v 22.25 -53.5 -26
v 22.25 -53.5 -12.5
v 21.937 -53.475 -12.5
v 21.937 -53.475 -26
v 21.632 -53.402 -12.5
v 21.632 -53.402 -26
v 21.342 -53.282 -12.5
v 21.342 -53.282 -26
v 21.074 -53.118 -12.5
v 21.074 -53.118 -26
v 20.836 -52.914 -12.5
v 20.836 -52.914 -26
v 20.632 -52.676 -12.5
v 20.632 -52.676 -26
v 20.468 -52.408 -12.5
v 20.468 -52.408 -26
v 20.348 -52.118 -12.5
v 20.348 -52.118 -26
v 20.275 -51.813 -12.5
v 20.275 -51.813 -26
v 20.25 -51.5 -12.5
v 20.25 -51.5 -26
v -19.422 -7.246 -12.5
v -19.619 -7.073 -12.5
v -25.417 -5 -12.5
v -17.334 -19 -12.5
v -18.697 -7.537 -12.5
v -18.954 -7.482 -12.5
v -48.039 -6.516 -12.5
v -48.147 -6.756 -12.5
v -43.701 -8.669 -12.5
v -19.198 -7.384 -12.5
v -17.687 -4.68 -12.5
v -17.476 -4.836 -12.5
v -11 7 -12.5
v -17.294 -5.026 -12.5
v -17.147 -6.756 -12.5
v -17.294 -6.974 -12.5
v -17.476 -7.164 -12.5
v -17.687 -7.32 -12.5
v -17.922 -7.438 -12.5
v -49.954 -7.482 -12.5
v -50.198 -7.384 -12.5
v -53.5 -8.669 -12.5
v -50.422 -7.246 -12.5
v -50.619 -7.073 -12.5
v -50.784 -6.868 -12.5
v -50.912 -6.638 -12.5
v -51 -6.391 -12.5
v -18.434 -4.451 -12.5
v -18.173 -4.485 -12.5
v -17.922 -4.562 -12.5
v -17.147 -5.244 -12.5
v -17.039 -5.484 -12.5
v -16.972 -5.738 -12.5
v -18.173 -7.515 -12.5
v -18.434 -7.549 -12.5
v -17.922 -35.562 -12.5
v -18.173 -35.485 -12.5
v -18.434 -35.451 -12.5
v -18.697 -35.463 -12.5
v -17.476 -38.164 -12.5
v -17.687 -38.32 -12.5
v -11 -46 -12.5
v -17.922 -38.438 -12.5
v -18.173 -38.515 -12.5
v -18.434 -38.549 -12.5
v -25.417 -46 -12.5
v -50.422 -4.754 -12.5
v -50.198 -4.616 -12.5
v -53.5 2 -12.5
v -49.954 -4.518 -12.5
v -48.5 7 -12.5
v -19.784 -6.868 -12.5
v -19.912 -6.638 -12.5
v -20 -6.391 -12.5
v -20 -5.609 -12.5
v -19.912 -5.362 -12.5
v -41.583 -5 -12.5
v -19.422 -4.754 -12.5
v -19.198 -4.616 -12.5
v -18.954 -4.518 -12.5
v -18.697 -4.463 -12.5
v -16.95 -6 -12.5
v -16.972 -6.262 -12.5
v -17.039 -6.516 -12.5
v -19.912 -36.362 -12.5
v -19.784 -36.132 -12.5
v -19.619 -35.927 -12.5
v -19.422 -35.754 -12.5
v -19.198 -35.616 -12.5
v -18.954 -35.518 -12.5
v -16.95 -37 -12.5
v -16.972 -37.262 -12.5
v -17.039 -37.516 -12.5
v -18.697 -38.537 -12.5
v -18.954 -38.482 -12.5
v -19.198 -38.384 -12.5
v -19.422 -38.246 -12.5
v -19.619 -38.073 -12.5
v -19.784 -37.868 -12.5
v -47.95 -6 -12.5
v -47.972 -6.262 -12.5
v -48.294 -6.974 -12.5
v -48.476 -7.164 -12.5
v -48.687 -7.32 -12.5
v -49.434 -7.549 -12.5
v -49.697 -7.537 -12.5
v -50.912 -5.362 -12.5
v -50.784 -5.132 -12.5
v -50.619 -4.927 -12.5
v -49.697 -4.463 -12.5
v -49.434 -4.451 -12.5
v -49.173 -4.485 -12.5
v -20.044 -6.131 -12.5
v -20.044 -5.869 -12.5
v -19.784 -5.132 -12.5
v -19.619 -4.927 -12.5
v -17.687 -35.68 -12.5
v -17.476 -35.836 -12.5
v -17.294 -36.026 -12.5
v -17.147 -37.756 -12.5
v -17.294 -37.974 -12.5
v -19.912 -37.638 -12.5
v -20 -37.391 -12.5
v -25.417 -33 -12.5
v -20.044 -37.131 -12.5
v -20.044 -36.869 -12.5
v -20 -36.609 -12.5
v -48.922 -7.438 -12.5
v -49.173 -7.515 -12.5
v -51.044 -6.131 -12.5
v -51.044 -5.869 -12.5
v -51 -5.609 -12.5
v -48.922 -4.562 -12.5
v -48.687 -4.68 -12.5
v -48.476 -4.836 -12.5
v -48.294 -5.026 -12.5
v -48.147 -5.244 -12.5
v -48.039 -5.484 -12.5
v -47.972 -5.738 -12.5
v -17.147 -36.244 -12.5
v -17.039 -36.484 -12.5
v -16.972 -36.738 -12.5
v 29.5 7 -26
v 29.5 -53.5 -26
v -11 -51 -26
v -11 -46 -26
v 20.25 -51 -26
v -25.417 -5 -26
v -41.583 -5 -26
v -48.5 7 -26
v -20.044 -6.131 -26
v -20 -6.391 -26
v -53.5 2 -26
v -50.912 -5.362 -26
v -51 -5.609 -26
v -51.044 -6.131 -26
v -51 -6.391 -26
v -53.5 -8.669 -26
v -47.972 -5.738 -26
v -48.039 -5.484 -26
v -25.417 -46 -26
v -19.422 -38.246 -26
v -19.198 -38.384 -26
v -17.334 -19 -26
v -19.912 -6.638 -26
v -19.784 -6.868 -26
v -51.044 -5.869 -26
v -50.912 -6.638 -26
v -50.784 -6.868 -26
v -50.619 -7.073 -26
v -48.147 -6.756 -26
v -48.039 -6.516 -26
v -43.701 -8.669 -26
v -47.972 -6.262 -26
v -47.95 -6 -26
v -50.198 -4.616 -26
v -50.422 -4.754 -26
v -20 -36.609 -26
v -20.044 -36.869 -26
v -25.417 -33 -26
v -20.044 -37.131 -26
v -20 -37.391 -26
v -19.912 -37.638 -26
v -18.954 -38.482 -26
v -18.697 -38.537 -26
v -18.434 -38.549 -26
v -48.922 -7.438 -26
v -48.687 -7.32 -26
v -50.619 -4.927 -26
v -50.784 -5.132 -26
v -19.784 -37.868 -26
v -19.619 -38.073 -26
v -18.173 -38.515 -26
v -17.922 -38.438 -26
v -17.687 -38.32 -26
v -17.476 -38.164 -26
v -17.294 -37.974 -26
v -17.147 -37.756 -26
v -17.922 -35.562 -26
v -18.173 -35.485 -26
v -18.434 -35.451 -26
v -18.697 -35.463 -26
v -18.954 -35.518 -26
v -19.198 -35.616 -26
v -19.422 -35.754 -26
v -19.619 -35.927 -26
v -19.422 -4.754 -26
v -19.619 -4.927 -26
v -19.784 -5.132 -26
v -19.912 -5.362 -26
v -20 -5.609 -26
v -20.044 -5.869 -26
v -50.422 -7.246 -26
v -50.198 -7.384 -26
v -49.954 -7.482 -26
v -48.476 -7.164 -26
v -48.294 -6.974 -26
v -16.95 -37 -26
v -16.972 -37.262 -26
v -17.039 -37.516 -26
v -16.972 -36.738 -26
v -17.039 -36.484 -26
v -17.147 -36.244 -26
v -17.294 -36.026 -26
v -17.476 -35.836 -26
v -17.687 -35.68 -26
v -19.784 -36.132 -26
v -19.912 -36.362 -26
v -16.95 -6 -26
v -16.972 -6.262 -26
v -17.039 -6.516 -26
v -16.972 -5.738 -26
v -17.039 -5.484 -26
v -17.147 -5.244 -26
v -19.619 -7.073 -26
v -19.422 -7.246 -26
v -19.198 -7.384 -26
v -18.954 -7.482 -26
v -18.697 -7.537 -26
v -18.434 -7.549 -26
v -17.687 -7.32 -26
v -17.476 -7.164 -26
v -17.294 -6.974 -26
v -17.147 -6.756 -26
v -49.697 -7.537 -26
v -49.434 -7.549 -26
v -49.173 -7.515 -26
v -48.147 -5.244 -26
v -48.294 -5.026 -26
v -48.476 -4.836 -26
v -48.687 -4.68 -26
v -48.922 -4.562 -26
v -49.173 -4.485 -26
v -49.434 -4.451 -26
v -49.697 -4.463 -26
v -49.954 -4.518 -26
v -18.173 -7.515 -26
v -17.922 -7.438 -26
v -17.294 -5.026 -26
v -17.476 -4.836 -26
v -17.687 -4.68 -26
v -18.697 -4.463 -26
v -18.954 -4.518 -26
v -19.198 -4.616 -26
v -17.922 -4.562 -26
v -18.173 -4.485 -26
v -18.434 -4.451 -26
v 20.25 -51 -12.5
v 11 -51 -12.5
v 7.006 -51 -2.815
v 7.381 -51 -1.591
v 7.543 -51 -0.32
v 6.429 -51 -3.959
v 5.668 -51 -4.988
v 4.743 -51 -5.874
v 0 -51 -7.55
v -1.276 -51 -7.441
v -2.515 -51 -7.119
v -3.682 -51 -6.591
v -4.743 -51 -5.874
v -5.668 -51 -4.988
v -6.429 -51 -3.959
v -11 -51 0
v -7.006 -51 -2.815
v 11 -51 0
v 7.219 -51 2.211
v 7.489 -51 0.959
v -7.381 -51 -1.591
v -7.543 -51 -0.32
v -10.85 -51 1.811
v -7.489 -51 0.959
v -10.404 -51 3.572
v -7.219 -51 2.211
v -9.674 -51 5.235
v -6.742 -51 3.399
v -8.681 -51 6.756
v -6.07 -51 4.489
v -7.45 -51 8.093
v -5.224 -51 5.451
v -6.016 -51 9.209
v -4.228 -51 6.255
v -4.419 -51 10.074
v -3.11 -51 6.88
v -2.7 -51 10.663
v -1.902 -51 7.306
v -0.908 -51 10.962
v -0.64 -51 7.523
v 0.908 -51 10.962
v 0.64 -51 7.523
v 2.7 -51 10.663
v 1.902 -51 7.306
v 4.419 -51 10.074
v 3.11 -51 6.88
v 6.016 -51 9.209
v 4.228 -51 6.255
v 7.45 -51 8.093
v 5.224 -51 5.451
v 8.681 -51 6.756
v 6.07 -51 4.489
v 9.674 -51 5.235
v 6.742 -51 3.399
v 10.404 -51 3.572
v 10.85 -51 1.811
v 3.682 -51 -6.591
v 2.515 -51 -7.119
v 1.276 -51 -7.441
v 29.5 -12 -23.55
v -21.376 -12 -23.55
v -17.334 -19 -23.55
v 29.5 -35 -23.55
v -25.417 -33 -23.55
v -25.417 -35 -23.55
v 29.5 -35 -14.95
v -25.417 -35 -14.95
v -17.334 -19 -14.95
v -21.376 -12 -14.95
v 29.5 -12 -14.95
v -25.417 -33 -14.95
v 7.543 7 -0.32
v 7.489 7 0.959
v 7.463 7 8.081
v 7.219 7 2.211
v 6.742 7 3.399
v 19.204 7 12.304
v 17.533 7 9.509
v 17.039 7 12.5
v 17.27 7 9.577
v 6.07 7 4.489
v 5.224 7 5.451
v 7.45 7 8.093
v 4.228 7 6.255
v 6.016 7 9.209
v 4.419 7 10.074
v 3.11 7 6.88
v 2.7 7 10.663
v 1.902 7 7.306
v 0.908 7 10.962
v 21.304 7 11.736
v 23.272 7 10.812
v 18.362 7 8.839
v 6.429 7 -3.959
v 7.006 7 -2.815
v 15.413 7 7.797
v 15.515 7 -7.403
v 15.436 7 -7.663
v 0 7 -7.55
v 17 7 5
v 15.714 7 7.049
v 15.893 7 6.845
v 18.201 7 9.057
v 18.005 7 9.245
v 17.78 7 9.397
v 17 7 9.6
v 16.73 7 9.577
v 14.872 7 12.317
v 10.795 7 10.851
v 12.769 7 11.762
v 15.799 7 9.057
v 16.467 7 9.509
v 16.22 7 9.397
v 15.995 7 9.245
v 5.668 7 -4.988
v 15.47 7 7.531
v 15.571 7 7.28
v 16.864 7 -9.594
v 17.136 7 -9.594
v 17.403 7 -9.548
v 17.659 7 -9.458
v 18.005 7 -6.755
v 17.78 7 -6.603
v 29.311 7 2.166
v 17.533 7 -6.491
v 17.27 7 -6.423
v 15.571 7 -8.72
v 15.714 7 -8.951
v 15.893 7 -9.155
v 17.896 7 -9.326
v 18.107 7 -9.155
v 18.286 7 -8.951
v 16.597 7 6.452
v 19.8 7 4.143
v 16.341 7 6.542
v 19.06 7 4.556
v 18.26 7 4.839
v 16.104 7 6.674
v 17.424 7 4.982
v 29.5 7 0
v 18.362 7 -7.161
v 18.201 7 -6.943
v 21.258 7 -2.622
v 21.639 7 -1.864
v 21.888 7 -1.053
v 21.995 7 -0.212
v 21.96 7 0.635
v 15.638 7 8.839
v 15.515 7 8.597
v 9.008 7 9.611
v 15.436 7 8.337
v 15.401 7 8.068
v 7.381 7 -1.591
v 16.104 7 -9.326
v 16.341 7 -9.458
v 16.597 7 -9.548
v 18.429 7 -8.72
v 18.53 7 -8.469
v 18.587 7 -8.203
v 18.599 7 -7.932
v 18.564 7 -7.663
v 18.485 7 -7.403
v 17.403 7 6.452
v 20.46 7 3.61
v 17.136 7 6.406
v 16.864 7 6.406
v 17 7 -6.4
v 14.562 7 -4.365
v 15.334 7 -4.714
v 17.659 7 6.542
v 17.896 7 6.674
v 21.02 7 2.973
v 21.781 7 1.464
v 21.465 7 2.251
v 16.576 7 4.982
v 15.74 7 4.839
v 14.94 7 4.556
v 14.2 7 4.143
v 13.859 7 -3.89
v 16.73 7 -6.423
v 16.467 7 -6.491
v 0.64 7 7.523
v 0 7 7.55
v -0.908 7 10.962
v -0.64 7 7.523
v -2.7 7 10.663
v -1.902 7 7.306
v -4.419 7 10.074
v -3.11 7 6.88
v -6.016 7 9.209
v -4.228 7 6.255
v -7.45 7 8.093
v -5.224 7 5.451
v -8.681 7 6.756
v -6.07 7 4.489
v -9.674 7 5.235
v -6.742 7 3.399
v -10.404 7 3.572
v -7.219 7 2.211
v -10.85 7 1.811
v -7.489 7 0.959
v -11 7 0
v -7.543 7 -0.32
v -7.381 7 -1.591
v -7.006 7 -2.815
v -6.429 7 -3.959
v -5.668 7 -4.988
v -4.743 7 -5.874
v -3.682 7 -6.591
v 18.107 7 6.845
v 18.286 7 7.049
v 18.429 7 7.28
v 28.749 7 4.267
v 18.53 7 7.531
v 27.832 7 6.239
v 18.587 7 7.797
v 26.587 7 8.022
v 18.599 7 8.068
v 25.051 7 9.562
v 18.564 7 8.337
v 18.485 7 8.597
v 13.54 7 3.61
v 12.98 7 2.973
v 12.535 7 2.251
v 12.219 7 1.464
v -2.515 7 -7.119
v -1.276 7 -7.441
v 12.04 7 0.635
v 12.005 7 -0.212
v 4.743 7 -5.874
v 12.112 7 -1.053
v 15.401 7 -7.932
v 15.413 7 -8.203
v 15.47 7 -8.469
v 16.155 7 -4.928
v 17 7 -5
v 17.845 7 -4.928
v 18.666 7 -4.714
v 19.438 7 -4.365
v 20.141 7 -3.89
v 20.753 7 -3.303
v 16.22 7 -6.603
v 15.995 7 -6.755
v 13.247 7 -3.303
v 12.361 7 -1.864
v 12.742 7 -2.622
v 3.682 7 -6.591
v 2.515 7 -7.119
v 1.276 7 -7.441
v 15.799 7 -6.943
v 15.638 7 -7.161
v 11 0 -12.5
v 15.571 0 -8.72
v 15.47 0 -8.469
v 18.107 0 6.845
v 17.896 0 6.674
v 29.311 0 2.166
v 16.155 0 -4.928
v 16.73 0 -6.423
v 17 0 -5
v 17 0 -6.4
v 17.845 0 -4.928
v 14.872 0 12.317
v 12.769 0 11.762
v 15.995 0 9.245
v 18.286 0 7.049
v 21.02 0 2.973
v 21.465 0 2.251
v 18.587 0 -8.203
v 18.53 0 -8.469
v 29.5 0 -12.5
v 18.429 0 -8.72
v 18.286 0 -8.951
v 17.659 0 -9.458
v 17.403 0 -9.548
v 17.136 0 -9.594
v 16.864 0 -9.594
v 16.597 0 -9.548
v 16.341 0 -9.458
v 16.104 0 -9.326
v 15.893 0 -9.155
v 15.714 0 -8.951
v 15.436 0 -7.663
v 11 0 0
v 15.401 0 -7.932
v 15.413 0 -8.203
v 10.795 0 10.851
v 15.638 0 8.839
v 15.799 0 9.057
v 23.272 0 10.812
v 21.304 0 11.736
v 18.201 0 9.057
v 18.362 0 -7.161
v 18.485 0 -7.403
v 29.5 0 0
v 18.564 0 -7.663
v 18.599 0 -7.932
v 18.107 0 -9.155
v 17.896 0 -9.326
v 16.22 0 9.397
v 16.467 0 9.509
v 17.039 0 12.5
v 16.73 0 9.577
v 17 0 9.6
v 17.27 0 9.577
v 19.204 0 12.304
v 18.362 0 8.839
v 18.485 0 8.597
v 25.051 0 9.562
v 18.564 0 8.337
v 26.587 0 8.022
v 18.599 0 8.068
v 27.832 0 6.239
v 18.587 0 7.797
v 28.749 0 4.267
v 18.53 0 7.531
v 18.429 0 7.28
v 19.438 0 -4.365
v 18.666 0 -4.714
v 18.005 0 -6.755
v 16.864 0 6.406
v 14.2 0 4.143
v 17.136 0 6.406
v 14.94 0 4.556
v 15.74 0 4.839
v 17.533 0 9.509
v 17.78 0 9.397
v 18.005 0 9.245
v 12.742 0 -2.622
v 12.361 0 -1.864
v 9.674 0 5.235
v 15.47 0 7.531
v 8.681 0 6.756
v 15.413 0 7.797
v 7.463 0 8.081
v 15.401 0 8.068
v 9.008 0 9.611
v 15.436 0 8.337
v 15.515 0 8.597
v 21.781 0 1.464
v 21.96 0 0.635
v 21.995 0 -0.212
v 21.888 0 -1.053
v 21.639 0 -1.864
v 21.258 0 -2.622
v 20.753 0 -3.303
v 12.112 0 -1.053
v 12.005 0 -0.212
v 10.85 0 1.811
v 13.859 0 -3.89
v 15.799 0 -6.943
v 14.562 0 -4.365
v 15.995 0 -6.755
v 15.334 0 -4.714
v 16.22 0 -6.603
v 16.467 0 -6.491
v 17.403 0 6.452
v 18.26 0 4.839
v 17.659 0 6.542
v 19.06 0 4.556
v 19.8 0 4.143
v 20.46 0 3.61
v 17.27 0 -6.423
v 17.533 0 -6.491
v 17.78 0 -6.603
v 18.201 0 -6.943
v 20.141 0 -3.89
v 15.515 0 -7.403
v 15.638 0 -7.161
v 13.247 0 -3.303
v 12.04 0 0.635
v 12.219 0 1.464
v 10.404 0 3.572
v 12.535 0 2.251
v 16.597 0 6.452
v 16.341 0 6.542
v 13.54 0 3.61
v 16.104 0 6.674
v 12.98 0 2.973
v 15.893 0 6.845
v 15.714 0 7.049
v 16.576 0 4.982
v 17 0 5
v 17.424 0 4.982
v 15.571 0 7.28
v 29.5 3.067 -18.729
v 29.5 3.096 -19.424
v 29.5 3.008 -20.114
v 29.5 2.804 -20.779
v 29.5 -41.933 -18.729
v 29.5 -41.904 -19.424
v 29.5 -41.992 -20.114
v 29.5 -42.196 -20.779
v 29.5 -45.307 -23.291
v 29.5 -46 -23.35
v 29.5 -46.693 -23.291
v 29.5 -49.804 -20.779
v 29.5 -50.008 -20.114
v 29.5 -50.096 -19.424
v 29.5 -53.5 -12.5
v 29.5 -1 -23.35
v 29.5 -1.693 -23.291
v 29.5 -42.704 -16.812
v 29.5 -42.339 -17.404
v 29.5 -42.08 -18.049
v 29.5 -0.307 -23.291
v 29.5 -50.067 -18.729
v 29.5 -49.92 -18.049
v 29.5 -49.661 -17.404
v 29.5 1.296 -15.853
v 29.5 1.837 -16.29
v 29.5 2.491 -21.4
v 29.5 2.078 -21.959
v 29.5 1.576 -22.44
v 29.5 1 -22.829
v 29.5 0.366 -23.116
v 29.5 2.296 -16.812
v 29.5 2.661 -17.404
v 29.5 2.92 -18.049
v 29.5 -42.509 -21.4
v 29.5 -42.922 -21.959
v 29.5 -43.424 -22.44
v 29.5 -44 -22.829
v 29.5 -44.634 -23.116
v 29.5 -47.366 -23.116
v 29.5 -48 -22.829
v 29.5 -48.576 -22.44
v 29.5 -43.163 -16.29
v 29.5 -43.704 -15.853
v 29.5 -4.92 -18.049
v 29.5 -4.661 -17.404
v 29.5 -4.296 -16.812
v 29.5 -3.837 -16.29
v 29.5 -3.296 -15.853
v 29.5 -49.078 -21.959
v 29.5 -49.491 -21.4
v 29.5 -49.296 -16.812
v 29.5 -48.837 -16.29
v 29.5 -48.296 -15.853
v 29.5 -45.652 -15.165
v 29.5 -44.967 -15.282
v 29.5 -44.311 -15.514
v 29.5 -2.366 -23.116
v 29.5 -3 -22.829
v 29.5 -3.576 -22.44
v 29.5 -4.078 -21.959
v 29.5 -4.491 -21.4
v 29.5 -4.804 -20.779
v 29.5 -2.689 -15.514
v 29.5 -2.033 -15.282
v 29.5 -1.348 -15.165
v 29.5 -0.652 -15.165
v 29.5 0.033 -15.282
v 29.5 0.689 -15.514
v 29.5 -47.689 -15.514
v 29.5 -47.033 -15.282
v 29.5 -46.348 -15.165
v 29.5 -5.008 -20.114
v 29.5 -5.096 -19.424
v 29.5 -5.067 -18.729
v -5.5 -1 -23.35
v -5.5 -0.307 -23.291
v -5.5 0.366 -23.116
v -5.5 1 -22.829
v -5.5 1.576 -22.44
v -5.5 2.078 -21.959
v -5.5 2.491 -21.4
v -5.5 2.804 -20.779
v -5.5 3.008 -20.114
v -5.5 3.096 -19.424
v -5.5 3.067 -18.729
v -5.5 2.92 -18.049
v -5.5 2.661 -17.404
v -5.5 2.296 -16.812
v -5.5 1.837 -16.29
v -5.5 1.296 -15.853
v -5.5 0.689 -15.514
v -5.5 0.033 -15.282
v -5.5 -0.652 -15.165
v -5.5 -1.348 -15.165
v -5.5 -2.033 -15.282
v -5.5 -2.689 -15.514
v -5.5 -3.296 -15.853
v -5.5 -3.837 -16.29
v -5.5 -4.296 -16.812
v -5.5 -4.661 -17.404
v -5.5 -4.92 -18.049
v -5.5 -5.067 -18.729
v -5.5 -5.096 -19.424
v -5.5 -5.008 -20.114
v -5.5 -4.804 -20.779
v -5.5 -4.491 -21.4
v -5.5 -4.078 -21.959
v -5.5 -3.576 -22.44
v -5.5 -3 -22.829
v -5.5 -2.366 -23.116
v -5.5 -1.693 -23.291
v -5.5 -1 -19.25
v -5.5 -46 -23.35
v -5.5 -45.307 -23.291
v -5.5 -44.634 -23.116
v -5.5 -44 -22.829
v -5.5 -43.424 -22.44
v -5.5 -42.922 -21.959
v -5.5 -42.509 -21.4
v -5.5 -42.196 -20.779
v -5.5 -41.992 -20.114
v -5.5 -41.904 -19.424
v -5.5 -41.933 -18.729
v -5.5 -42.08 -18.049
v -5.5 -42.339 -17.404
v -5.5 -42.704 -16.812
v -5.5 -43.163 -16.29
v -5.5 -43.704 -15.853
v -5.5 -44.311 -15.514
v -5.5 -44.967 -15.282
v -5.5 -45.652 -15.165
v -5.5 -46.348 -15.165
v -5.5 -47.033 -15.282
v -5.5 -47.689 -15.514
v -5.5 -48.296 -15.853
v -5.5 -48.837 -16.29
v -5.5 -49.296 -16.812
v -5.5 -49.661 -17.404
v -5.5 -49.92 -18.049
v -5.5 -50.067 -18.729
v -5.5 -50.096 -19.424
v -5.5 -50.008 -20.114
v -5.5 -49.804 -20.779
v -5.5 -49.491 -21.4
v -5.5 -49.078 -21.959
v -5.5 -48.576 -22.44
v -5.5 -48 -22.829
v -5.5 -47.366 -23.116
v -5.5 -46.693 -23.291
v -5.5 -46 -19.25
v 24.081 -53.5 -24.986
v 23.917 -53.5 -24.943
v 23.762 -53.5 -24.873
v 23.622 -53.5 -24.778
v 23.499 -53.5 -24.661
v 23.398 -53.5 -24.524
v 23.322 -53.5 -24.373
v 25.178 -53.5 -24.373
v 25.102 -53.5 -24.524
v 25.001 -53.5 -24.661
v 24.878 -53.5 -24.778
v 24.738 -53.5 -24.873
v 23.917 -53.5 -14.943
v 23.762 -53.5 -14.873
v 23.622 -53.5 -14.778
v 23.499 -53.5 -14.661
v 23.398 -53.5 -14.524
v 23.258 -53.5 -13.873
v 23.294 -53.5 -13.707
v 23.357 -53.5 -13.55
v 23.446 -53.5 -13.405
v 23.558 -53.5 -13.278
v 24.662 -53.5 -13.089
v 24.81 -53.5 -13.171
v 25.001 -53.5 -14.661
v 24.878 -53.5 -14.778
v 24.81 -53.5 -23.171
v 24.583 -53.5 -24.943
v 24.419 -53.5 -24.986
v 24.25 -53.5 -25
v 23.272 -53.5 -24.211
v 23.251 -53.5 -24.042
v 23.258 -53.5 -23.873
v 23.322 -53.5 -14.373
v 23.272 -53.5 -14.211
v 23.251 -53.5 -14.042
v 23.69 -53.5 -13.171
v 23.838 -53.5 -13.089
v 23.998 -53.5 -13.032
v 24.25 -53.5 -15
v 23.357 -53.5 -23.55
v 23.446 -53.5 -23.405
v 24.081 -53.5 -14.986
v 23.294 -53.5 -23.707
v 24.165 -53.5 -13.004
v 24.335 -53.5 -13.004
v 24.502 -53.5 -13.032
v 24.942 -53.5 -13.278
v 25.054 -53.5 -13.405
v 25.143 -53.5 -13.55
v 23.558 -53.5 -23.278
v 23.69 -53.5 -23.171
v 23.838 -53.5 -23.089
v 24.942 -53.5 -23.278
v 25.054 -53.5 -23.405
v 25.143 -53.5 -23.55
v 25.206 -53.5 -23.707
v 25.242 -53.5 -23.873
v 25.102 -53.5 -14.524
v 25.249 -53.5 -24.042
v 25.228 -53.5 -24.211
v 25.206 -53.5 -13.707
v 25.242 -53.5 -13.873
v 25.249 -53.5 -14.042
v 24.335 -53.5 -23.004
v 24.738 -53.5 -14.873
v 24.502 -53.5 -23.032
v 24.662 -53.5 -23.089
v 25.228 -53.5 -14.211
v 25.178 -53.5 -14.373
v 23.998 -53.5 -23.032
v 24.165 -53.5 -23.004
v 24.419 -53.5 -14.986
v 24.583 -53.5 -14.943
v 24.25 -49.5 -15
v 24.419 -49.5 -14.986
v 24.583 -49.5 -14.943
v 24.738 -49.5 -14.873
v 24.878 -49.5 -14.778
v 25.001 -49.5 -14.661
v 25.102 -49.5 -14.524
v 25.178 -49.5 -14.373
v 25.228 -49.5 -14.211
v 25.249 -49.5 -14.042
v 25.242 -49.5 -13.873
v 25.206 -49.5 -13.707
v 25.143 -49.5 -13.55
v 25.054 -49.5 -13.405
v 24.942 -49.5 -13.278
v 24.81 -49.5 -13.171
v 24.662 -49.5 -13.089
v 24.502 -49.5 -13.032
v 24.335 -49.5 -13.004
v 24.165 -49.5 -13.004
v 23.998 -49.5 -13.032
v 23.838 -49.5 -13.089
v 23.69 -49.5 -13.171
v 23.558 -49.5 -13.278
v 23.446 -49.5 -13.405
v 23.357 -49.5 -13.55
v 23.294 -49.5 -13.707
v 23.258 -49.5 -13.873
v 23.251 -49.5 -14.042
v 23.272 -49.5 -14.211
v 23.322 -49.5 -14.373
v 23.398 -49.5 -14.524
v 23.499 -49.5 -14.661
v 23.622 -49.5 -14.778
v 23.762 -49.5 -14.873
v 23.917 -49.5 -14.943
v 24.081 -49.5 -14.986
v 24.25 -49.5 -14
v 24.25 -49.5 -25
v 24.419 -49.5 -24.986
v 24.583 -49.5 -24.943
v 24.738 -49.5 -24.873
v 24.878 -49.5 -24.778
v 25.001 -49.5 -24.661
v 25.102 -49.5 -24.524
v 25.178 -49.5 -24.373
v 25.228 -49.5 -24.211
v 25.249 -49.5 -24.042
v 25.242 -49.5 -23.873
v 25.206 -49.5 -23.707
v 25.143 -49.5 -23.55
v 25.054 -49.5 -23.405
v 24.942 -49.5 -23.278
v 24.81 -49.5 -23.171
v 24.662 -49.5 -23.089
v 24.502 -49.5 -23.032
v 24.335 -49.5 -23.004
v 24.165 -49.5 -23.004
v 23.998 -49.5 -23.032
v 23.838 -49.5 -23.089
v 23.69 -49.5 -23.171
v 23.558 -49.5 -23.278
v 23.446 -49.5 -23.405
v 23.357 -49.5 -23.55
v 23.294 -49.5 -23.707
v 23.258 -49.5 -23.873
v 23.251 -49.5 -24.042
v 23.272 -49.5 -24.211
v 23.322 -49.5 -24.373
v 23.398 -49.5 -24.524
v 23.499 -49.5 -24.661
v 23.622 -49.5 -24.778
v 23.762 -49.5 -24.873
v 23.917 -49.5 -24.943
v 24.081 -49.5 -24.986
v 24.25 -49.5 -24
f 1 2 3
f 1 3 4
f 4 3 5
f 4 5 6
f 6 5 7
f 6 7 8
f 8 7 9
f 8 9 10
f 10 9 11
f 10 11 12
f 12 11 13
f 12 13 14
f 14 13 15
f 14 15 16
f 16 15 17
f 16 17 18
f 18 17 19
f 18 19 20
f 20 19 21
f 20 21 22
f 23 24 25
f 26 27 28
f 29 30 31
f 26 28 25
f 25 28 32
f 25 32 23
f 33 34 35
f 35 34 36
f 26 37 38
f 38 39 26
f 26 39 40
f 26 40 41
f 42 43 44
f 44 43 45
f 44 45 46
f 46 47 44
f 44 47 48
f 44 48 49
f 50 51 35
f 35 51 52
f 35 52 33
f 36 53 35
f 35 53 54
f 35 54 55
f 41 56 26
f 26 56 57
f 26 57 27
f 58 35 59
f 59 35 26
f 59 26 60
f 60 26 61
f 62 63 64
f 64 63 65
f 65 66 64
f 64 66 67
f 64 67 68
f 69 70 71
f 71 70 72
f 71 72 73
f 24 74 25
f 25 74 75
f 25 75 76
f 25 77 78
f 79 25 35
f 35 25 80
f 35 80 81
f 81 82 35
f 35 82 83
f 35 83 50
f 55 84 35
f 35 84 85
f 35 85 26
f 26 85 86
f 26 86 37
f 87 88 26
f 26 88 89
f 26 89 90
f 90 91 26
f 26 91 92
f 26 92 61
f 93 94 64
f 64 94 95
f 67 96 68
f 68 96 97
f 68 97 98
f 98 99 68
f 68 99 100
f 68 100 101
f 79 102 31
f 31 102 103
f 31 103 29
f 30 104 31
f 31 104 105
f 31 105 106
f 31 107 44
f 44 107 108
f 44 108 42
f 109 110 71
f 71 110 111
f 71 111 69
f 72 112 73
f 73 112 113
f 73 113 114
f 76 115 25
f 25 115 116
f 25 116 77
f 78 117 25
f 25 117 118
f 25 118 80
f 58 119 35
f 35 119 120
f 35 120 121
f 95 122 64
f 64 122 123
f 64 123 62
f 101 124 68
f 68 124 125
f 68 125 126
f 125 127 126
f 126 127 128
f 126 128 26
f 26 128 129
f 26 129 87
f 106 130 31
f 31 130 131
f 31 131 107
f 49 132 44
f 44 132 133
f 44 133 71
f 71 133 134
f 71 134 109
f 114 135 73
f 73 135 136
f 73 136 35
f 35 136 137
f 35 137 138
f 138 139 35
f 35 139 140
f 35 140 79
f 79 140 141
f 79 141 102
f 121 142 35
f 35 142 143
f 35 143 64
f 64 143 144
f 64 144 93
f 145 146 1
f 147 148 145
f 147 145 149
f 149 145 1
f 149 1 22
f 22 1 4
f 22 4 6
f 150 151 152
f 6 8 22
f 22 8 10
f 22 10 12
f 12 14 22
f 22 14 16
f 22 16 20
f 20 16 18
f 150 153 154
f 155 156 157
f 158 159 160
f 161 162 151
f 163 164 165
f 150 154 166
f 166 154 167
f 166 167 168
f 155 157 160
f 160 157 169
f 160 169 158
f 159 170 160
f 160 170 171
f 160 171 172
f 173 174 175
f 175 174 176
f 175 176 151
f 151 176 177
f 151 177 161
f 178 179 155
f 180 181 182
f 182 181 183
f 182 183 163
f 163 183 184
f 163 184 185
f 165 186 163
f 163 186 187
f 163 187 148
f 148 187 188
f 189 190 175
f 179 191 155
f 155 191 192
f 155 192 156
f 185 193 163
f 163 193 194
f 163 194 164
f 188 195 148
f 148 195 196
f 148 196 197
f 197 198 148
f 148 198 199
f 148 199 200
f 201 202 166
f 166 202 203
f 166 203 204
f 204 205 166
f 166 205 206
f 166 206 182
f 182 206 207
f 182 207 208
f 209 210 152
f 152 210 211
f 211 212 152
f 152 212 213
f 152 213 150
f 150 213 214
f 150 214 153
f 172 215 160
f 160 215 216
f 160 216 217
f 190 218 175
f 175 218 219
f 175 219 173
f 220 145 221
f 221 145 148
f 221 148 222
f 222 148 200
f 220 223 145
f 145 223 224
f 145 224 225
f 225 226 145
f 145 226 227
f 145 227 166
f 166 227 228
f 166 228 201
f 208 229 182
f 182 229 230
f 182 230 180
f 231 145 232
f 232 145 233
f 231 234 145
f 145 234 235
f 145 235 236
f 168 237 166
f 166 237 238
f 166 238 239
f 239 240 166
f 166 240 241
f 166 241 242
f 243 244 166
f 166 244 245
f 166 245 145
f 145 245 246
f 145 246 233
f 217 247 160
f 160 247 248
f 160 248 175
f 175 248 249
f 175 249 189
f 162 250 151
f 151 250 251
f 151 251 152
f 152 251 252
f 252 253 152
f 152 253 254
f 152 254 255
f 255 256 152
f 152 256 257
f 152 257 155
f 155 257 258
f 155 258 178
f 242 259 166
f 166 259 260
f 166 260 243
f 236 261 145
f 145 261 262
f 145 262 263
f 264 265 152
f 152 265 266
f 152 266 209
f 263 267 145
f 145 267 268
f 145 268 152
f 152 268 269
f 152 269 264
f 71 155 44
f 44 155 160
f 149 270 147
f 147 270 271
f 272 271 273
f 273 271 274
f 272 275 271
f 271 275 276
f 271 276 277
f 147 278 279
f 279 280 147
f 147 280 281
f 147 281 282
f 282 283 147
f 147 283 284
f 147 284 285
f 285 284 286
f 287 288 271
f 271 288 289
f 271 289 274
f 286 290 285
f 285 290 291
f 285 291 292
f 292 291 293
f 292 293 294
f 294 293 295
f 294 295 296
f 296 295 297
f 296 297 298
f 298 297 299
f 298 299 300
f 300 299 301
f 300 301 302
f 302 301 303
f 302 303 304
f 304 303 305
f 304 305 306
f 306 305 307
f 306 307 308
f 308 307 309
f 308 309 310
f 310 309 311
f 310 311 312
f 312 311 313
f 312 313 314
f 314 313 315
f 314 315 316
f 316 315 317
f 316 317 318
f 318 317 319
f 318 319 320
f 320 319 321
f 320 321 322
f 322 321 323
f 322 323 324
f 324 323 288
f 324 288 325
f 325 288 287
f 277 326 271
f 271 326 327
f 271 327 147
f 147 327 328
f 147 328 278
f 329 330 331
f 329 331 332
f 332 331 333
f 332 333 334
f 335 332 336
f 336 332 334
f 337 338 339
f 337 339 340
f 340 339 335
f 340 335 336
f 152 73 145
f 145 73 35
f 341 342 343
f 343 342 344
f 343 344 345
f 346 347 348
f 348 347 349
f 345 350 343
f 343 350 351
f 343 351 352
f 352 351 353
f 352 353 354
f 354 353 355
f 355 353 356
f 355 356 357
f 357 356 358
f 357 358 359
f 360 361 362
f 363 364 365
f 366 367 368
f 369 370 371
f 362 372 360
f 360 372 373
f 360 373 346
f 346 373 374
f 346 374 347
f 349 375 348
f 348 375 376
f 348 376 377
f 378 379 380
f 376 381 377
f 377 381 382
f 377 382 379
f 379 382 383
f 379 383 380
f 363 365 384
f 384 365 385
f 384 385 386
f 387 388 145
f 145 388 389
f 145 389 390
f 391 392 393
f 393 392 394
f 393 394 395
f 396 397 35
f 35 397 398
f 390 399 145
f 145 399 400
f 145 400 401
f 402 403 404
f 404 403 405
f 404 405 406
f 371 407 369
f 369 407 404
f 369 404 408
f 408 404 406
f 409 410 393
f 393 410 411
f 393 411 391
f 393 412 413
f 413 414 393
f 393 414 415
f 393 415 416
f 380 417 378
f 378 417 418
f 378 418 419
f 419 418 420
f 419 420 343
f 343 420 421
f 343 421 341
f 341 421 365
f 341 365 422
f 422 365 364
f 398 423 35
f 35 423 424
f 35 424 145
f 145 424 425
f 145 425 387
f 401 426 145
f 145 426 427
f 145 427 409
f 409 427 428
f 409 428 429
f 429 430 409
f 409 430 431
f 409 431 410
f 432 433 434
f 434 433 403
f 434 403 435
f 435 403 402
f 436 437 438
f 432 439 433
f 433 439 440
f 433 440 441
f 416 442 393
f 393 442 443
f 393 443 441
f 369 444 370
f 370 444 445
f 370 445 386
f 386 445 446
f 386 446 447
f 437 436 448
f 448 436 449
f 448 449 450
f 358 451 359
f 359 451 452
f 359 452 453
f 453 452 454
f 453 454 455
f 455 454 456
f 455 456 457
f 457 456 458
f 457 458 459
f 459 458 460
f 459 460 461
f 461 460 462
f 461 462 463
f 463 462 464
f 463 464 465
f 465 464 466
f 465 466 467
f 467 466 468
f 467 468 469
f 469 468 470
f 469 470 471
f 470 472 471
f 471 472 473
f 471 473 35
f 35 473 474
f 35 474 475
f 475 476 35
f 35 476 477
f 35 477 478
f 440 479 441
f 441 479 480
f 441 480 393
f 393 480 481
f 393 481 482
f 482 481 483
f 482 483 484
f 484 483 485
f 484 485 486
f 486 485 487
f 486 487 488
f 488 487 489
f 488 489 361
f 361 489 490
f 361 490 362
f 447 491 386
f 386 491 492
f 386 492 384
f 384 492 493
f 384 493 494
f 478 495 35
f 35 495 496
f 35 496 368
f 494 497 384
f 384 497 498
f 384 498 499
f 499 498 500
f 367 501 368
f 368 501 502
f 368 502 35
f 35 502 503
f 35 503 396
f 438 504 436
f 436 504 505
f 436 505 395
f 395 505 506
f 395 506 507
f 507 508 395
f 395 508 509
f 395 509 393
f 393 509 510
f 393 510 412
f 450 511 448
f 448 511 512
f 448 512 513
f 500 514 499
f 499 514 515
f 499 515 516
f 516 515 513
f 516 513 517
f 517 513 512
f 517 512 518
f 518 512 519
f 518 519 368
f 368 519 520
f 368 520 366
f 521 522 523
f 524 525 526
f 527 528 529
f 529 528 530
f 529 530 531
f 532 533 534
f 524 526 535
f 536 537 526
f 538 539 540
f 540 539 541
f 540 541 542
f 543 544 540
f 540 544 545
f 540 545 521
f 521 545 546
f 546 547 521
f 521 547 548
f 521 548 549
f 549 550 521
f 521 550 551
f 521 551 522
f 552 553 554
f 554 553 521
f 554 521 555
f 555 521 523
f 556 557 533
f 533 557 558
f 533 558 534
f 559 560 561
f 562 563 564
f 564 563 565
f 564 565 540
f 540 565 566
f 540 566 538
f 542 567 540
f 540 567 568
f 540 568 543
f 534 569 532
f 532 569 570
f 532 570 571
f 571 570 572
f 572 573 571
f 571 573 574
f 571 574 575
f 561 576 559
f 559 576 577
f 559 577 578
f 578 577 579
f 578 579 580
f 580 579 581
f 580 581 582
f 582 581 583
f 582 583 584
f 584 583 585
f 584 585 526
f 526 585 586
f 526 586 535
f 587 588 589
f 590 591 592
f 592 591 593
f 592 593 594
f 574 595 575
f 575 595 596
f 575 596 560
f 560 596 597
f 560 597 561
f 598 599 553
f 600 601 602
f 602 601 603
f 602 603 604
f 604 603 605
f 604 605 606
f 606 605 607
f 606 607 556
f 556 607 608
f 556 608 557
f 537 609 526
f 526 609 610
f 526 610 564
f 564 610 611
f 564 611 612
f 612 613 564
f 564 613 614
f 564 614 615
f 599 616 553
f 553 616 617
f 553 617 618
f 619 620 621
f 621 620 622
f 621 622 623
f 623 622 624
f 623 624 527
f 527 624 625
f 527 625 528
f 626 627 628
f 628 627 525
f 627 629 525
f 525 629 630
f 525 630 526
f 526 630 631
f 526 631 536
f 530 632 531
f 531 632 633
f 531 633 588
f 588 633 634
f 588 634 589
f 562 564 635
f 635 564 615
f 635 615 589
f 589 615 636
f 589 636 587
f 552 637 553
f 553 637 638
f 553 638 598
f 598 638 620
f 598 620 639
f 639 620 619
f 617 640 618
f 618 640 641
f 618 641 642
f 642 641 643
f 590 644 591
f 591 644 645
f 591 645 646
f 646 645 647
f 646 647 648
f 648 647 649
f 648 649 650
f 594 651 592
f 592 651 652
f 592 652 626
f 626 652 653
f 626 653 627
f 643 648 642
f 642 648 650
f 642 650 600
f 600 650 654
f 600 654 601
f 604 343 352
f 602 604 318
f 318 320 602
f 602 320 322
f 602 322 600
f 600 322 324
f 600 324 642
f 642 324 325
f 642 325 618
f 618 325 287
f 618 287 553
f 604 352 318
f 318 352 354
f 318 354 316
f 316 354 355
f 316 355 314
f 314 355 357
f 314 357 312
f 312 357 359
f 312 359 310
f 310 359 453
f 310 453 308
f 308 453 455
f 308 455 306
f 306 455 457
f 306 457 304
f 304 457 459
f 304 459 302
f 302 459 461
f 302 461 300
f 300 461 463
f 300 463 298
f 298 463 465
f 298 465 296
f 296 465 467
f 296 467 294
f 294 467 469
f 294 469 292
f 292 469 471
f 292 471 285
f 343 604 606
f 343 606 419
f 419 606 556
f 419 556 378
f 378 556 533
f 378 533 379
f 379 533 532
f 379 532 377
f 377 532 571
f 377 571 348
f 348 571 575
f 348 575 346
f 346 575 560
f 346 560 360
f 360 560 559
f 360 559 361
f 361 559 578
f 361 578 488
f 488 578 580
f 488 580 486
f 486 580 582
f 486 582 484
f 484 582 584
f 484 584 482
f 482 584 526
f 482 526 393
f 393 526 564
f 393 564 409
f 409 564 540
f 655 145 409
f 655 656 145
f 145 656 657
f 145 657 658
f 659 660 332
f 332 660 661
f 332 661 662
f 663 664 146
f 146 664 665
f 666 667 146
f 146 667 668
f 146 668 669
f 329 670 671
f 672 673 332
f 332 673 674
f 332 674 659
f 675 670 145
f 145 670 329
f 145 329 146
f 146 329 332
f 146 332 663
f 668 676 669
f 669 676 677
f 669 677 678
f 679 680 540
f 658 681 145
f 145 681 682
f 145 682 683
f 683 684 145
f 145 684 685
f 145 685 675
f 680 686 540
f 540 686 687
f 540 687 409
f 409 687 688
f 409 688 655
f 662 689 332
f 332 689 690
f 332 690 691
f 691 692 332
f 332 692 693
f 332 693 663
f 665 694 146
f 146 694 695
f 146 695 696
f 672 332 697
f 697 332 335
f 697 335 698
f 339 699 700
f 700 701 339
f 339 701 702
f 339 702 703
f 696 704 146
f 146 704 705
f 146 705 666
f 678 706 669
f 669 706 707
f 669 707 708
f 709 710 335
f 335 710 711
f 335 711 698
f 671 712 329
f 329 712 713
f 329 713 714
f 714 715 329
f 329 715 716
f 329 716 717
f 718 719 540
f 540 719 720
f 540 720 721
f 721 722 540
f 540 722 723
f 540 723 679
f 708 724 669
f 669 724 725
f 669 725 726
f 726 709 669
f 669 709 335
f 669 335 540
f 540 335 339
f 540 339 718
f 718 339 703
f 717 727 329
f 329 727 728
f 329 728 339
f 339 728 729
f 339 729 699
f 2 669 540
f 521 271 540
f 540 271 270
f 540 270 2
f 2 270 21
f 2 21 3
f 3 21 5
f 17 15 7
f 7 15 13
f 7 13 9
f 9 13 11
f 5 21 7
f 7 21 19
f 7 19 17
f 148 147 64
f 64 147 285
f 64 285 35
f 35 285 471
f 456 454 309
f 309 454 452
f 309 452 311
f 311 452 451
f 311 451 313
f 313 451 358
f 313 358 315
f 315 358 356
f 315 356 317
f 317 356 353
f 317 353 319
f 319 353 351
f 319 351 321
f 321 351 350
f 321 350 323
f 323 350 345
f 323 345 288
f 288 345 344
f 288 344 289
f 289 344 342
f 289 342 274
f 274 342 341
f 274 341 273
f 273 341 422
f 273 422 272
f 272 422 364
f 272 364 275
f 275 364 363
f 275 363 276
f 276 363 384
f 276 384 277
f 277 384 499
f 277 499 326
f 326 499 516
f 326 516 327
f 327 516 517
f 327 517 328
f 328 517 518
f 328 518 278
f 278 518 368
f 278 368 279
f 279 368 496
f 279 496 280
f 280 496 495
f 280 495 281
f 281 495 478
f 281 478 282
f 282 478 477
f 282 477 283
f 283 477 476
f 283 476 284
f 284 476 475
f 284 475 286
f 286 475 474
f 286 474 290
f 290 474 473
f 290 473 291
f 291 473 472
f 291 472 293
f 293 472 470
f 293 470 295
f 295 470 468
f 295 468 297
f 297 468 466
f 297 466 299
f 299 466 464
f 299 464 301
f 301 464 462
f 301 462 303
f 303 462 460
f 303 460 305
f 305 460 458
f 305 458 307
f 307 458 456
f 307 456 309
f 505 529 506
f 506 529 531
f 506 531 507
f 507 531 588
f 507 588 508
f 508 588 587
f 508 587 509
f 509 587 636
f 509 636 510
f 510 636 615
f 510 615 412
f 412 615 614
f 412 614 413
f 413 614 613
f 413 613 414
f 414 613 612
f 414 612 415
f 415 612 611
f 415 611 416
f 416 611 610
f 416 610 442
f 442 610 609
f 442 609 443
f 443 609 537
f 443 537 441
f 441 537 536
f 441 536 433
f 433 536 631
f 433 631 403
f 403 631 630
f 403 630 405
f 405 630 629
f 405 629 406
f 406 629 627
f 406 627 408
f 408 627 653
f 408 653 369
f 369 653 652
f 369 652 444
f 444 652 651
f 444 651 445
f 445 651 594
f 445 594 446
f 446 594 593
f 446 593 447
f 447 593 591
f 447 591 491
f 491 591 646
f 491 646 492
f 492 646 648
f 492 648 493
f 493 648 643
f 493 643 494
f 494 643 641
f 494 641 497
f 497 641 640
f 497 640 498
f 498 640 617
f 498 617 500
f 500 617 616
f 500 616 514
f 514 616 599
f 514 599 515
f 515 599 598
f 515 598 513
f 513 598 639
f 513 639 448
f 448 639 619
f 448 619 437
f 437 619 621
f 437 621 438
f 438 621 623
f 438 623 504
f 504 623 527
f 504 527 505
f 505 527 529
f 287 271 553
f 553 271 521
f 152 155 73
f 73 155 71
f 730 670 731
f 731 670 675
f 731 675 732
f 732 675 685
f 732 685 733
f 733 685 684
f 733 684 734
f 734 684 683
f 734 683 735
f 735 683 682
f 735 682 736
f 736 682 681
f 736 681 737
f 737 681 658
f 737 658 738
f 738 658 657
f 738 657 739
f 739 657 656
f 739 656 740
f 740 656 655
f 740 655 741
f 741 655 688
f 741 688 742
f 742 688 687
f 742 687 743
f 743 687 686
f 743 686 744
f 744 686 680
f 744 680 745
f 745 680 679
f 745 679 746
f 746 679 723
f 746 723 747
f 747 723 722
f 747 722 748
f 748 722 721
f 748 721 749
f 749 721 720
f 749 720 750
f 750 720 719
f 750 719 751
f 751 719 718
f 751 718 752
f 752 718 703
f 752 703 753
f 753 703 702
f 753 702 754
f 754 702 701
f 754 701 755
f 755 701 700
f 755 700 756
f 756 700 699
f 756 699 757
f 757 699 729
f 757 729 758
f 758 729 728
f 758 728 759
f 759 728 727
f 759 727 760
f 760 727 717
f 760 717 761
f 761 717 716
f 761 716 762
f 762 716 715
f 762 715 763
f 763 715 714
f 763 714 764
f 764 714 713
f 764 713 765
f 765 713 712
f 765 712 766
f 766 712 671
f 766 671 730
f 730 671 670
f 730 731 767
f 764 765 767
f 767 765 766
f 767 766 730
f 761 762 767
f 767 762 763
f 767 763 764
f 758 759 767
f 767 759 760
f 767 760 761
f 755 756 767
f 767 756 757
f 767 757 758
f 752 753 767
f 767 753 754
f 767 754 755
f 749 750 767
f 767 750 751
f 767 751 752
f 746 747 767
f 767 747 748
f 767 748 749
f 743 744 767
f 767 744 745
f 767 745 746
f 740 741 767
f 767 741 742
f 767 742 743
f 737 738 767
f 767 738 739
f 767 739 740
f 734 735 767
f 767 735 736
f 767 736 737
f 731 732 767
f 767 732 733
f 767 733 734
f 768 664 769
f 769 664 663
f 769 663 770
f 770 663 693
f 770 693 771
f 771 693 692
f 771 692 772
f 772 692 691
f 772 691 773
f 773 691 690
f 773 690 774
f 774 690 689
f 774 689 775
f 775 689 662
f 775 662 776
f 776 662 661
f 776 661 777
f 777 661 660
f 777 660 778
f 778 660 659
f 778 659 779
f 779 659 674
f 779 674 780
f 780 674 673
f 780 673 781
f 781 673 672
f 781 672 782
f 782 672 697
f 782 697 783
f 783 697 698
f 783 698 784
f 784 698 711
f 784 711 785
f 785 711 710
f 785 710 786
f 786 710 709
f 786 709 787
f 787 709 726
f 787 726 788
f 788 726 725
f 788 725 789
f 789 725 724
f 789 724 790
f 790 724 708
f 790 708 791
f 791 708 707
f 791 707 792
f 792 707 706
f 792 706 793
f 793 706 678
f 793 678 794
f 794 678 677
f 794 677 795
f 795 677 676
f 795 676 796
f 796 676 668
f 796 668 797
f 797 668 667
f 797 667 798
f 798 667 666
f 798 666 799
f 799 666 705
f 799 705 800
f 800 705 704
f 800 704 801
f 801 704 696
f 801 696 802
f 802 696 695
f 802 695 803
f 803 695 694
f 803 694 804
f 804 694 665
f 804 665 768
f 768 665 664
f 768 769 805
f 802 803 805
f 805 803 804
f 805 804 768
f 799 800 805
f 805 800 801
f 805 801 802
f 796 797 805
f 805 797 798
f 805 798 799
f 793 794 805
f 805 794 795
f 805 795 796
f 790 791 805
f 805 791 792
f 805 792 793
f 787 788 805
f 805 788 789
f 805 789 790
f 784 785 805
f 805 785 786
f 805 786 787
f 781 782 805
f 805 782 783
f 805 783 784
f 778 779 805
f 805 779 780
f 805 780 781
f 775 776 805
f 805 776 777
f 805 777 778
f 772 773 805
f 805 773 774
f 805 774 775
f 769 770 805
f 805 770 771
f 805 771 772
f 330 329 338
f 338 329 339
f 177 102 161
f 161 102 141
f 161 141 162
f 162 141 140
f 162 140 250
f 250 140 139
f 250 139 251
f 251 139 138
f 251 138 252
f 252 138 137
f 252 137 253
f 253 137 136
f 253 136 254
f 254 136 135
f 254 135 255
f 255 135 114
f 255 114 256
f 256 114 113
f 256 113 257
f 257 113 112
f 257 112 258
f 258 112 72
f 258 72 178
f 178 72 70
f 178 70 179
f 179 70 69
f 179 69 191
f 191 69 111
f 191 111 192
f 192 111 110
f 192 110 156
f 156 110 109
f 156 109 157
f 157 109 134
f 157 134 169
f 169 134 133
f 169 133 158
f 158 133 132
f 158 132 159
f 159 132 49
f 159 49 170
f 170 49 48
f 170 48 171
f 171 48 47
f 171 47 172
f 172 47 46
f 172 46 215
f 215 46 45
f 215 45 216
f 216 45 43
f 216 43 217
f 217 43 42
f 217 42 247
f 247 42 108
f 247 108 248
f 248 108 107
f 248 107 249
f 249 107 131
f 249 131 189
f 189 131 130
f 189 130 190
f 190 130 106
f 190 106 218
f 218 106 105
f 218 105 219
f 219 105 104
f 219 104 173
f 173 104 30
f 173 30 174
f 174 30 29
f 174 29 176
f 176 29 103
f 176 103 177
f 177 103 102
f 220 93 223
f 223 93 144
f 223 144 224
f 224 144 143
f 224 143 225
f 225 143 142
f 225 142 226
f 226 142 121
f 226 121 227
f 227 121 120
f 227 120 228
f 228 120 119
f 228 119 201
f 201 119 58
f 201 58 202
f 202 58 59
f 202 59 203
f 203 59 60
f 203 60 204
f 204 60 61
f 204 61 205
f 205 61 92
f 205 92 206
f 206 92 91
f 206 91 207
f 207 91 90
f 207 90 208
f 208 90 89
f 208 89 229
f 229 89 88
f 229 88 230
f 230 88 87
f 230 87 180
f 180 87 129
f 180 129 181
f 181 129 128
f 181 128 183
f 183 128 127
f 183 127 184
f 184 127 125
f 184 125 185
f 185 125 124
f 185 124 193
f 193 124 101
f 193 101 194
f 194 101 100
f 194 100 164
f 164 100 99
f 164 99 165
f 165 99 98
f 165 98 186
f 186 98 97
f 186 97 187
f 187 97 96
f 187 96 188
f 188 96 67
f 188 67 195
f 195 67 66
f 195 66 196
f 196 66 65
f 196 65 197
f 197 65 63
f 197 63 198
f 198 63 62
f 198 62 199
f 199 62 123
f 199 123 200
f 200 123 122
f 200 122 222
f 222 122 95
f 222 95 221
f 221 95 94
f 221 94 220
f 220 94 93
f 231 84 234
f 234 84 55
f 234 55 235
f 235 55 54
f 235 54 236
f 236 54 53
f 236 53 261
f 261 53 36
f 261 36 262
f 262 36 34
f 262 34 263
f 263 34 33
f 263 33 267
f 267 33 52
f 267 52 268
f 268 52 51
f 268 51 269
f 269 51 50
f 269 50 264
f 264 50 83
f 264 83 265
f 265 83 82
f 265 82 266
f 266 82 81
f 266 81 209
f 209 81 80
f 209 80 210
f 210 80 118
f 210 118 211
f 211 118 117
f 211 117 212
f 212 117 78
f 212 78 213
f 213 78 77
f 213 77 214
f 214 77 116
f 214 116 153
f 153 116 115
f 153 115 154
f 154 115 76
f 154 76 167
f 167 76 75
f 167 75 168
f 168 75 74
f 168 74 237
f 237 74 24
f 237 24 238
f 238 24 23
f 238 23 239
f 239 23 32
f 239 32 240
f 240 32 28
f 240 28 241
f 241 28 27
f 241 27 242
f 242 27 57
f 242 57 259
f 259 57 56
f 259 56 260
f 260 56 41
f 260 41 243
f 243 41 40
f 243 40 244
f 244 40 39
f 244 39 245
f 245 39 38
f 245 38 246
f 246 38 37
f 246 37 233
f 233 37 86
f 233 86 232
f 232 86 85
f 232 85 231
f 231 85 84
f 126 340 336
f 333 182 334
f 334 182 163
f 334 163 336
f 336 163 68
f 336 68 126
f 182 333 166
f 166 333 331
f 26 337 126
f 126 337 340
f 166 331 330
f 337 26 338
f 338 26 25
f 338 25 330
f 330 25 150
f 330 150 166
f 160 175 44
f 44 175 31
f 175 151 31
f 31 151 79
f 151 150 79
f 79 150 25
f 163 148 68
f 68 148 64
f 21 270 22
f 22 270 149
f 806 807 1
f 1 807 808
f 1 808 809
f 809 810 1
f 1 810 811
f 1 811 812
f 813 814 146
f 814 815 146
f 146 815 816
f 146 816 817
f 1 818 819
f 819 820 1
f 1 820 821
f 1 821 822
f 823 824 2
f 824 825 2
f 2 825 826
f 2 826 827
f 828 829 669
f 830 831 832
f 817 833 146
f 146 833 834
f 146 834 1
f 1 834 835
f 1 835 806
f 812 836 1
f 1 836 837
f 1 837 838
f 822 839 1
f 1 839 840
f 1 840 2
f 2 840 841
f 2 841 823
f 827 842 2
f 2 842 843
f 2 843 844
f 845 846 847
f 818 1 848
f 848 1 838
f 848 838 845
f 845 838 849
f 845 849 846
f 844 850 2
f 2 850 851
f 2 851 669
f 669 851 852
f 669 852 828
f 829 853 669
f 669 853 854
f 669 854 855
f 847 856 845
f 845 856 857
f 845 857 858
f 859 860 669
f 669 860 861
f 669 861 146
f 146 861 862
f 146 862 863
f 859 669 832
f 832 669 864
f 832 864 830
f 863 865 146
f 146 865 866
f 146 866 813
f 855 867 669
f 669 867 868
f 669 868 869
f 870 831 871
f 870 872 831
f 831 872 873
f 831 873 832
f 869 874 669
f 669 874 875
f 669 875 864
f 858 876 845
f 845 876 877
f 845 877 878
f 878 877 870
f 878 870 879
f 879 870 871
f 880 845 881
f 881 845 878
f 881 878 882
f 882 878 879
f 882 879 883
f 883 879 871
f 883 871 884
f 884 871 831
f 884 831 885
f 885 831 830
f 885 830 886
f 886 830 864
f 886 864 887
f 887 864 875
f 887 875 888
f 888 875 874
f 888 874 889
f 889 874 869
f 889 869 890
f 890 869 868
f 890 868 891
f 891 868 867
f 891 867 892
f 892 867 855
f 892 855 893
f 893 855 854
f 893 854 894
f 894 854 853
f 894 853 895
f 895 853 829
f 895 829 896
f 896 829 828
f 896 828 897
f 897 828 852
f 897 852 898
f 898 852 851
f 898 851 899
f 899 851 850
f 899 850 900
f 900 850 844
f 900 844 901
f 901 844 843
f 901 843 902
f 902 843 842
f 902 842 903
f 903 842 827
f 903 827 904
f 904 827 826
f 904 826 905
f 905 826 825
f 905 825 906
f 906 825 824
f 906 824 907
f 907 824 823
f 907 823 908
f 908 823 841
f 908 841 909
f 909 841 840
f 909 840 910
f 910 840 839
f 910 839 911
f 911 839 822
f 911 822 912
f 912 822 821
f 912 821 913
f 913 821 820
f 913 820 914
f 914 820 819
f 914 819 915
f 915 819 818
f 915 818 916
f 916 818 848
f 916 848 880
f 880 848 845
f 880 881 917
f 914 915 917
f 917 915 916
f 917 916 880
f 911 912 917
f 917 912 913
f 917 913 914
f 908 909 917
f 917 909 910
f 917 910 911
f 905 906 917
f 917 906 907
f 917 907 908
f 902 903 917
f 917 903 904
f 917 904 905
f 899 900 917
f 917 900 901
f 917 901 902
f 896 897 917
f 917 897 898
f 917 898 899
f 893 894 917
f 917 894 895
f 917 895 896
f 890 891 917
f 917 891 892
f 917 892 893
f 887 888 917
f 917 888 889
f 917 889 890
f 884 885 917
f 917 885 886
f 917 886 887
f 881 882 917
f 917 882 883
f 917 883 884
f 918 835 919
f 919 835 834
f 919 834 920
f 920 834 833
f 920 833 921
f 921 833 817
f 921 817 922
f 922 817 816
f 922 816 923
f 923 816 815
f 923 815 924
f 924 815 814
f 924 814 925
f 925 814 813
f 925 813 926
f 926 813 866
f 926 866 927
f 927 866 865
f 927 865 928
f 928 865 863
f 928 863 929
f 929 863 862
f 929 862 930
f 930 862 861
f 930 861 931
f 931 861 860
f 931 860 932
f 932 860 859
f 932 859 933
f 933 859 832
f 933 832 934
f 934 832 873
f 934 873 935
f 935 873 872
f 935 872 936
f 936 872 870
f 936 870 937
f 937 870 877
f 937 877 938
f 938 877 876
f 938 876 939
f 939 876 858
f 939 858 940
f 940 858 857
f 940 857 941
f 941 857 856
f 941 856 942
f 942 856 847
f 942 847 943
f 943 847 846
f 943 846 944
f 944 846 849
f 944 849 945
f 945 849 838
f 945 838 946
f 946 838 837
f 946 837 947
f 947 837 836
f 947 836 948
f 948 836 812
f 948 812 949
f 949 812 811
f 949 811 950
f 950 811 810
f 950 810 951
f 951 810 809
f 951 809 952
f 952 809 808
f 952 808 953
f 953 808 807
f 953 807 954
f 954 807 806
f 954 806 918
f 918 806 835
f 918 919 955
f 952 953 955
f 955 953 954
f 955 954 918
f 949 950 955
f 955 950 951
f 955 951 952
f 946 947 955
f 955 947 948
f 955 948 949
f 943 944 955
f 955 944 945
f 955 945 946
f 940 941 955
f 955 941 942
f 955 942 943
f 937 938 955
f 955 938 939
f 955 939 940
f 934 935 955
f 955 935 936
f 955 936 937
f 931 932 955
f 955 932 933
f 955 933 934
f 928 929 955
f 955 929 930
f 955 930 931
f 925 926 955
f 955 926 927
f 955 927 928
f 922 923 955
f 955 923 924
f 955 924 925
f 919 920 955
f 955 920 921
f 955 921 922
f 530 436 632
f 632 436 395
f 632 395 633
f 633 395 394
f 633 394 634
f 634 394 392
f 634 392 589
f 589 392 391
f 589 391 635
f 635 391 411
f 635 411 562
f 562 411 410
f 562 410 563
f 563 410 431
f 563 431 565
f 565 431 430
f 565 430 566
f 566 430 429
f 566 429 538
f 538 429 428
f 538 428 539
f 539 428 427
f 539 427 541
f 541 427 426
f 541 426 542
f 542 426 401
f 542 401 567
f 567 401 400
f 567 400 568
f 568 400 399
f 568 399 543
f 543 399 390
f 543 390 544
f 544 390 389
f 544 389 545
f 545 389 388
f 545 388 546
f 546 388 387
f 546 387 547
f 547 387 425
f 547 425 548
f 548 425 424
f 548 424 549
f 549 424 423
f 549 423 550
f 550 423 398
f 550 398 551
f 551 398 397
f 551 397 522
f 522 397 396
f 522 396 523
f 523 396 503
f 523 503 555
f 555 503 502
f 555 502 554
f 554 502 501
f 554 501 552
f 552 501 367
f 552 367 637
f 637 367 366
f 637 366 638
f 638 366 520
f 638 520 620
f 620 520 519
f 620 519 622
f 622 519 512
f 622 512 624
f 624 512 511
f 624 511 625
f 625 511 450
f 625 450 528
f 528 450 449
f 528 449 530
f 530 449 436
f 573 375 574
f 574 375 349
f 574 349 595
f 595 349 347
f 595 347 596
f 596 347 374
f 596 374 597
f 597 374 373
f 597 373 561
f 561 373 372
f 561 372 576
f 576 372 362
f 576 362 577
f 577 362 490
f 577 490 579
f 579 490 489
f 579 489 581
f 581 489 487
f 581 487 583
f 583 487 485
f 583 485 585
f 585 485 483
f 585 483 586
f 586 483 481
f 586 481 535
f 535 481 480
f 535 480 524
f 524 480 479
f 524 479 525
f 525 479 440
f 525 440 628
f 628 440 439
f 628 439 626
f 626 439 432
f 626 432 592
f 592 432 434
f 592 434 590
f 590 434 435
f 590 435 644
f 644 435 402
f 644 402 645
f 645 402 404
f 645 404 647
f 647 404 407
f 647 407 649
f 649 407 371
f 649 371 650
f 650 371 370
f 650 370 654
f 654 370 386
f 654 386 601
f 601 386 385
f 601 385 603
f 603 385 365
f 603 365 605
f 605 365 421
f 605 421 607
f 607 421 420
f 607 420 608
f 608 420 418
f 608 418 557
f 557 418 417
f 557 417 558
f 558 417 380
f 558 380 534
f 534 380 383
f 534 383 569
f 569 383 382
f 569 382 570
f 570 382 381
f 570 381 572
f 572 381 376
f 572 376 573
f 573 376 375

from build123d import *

# Parameters (mm, degrees)
CROQUIS1_R              = 7.55
CROQUIS1_R_2            = 5
SALIENTE_EXTRUIR1_DEPTH = 7
SALIENTE_EXTRUIR2_DEPTH = 51
CROQUIS3_R              = 7.55
SALIENTE_EXTRUIR3_DEPTH = 51
CORTAR_EXTRUIR2_DEPTH   = 14.5
CROQUIS7_R              = 4.1
CORTAR_EXTRUIR3_DEPTH   = 35
CROQUIS8_W              = 8.6
CROQUIS8_H              = 23
CORTAR_EXTRUIR4_DEPTH   = 84
CROQUIS10_R             = 1.55
CORTAR_EXTRUIR7_DEPTH   = 14.5
CORTAR_EXTRUIR8_DEPTH   = 14.5
CROQUIS12_W             = 14.417096231
CROQUIS12_H             = 5
CORTAR_EXTRUIR9_DEPTH   = 14.5
CROQUIS13_W             = 9.25
CROQUIS13_H             = 13.5
SALIENTE_EXTRUIR4_DEPTH = 2.5
REDONDEO2_R             = 2
CROQUIS14_R             = 1
CORTAR_EXTRUIR10_DEPTH  = 4
CROQUIS15_R             = 1.6
CORTAR_EXTRUIR11_DEPTH  = 61.5


with BuildPart() as part:
    # Croquis1 → Saliente-Extruir1 (new body)
    with BuildSketch(Plane(origin=(0, 0, 0), x_dir=(1, 0, 0), z_dir=(0, 1, 0))):
        with BuildLine():
            Line((-11, 0), (-11, 12.5))
            Line((-11, 12.5), (-53.5, 12.5))
            Line((-53.5, 12.5), (-53.5, 26))
            Line((-53.5, 26), (29.5, 26))
            Line((29.5, 26), (29.5, 8))
            Line((29.5, 8), (29.5, 0))
            ThreePointArc((29.5, 0), (21.303512587, -11.735833137), (7.463235294, -8.0808489))
            ThreePointArc((7.463235294, -8.0808489), (-4.410465495, -10.077092543), (-11, 0))
        make_face()
        Circle(CROQUIS1_R, mode=Mode.SUBTRACT)
        with Locations((17, 0)):
            Circle(CROQUIS1_R_2, mode=Mode.SUBTRACT)
    extrude(amount=SALIENTE_EXTRUIR1_DEPTH)

    # Croquis2 → Saliente-Extruir2 (add)
    with BuildSketch(Plane.XZ):
        Polygon((29.5, -26), (29.5, -12.5), (-11, -12.5), (-53.5, -12.5), (-53.5, -26), align=None)
    extrude(amount=SALIENTE_EXTRUIR2_DEPTH)

    # Croquis3 → Saliente-Extruir3 (add)
    with BuildSketch(Plane.XZ):
        with BuildLine():
            Line((-11, 0), (-11, -12.5))
            Line((-11, -12.5), (11, -12.5))
            Line((11, -12.5), (11, 0))
            ThreePointArc((11, 0), (10.077092543, 4.410465495), (7.463235294, 8.0808489))
            ThreePointArc((7.463235294, 8.0808489), (-4.410465495, 10.077092543), (-11, 0))
        make_face()
        Circle(CROQUIS3_R, mode=Mode.SUBTRACT)
    extrude(amount=SALIENTE_EXTRUIR3_DEPTH)

    # Croquis5 → Cortar-Extruir2 (cut, through all)
    with BuildSketch(Plane.XY.offset(-12.5)):
        Polygon((-53.5, 7), (-48.5, 7), (-53.5, 2), align=None)
    extrude(amount=-CORTAR_EXTRUIR2_DEPTH, mode=Mode.SUBTRACT)

    # Croquis7 → Cortar-Extruir3 (cut)
    with BuildSketch(Plane(origin=(29.5, 0, 0), x_dir=(0, 0, -1), z_dir=(1, 0, 0))):
        with Locations((19.25, -1)):
            Circle(CROQUIS7_R)
        with Locations((19.25, -46)):
            Circle(CROQUIS7_R)
    extrude(amount=-CORTAR_EXTRUIR3_DEPTH, mode=Mode.SUBTRACT)

    # Croquis8 → Cortar-Extruir4 (cut, through all)
    with BuildSketch(Plane(origin=(29.5, 0, 0), x_dir=(0, 0, -1), z_dir=(1, 0, 0))):
        with Locations((19.25, -23.5)):
            Rectangle(CROQUIS8_W, CROQUIS8_H)
    extrude(amount=-CORTAR_EXTRUIR4_DEPTH, mode=Mode.SUBTRACT)

    # Croquis10 → Cortar-Extruir7 (cut, through all)
    with BuildSketch(Plane.XY.offset(-12.5)):
        with Locations((-49.5, -6)):
            Circle(CROQUIS10_R)
        with Locations((-18.5, -6)):
            Circle(CROQUIS10_R)
        with Locations((-18.5, -37)):
            Circle(CROQUIS10_R)
    extrude(amount=-CORTAR_EXTRUIR7_DEPTH, mode=Mode.SUBTRACT)

    # Croquis11 → Cortar-Extruir8 (cut, through all)
    with BuildSketch(Plane.XY.offset(-12.5)):
        Polygon((-53.5, -8.669284564), (-53.5, -51), (-25.417096231, -51), (-25.417096231, -33), (-17.334192463, -19), (-25.417096231, -5), (-41.582903769, -5), (-43.7013662, -8.669284564), align=None)
    extrude(amount=-CORTAR_EXTRUIR8_DEPTH, mode=Mode.SUBTRACT)

    # Croquis12 → Cortar-Extruir9 (cut, through all)
    with BuildSketch(Plane.XY.offset(-12.5)):
        with Locations((-18.208548116, -48.5)):
            Rectangle(CROQUIS12_W, CROQUIS12_H)
    extrude(amount=-CORTAR_EXTRUIR9_DEPTH, mode=Mode.SUBTRACT)

    # Croquis13 → Saliente-Extruir4 (add)
    with BuildSketch(Plane.XZ.offset(51)):
        with Locations((24.875, -19.25)):
            Rectangle(CROQUIS13_W, CROQUIS13_H)
    extrude(amount=SALIENTE_EXTRUIR4_DEPTH)

    # Redondeo2
    redondeo2_edges = [part.edges().sort_by_distance(p)[0] for p in [
        (20.25, -53.5, -19.25),
    ]]
    fillet(redondeo2_edges, radius=REDONDEO2_R)

    # Croquis14 → Cortar-Extruir10 (cut)
    with BuildSketch(Plane.XZ.offset(53.5)):
        with Locations((24.25, -14)):
            Circle(CROQUIS14_R)
        with Locations((24.25, -24)):
            Circle(CROQUIS14_R)
    extrude(amount=-CORTAR_EXTRUIR10_DEPTH, mode=Mode.SUBTRACT)

    # Croquis15 → Cortar-Extruir11 (cut, through all)
    with BuildSketch(Plane(origin=(0, 7, 0), x_dir=(1, 0, 0), z_dir=(0, 1, 0))):
        with Locations((17, 8)):
            Circle(CROQUIS15_R)
        with Locations((17, -8)):
            Circle(CROQUIS15_R)
    extrude(amount=-CORTAR_EXTRUIR11_DEPTH, mode=Mode.SUBTRACT)


solid = part.part
